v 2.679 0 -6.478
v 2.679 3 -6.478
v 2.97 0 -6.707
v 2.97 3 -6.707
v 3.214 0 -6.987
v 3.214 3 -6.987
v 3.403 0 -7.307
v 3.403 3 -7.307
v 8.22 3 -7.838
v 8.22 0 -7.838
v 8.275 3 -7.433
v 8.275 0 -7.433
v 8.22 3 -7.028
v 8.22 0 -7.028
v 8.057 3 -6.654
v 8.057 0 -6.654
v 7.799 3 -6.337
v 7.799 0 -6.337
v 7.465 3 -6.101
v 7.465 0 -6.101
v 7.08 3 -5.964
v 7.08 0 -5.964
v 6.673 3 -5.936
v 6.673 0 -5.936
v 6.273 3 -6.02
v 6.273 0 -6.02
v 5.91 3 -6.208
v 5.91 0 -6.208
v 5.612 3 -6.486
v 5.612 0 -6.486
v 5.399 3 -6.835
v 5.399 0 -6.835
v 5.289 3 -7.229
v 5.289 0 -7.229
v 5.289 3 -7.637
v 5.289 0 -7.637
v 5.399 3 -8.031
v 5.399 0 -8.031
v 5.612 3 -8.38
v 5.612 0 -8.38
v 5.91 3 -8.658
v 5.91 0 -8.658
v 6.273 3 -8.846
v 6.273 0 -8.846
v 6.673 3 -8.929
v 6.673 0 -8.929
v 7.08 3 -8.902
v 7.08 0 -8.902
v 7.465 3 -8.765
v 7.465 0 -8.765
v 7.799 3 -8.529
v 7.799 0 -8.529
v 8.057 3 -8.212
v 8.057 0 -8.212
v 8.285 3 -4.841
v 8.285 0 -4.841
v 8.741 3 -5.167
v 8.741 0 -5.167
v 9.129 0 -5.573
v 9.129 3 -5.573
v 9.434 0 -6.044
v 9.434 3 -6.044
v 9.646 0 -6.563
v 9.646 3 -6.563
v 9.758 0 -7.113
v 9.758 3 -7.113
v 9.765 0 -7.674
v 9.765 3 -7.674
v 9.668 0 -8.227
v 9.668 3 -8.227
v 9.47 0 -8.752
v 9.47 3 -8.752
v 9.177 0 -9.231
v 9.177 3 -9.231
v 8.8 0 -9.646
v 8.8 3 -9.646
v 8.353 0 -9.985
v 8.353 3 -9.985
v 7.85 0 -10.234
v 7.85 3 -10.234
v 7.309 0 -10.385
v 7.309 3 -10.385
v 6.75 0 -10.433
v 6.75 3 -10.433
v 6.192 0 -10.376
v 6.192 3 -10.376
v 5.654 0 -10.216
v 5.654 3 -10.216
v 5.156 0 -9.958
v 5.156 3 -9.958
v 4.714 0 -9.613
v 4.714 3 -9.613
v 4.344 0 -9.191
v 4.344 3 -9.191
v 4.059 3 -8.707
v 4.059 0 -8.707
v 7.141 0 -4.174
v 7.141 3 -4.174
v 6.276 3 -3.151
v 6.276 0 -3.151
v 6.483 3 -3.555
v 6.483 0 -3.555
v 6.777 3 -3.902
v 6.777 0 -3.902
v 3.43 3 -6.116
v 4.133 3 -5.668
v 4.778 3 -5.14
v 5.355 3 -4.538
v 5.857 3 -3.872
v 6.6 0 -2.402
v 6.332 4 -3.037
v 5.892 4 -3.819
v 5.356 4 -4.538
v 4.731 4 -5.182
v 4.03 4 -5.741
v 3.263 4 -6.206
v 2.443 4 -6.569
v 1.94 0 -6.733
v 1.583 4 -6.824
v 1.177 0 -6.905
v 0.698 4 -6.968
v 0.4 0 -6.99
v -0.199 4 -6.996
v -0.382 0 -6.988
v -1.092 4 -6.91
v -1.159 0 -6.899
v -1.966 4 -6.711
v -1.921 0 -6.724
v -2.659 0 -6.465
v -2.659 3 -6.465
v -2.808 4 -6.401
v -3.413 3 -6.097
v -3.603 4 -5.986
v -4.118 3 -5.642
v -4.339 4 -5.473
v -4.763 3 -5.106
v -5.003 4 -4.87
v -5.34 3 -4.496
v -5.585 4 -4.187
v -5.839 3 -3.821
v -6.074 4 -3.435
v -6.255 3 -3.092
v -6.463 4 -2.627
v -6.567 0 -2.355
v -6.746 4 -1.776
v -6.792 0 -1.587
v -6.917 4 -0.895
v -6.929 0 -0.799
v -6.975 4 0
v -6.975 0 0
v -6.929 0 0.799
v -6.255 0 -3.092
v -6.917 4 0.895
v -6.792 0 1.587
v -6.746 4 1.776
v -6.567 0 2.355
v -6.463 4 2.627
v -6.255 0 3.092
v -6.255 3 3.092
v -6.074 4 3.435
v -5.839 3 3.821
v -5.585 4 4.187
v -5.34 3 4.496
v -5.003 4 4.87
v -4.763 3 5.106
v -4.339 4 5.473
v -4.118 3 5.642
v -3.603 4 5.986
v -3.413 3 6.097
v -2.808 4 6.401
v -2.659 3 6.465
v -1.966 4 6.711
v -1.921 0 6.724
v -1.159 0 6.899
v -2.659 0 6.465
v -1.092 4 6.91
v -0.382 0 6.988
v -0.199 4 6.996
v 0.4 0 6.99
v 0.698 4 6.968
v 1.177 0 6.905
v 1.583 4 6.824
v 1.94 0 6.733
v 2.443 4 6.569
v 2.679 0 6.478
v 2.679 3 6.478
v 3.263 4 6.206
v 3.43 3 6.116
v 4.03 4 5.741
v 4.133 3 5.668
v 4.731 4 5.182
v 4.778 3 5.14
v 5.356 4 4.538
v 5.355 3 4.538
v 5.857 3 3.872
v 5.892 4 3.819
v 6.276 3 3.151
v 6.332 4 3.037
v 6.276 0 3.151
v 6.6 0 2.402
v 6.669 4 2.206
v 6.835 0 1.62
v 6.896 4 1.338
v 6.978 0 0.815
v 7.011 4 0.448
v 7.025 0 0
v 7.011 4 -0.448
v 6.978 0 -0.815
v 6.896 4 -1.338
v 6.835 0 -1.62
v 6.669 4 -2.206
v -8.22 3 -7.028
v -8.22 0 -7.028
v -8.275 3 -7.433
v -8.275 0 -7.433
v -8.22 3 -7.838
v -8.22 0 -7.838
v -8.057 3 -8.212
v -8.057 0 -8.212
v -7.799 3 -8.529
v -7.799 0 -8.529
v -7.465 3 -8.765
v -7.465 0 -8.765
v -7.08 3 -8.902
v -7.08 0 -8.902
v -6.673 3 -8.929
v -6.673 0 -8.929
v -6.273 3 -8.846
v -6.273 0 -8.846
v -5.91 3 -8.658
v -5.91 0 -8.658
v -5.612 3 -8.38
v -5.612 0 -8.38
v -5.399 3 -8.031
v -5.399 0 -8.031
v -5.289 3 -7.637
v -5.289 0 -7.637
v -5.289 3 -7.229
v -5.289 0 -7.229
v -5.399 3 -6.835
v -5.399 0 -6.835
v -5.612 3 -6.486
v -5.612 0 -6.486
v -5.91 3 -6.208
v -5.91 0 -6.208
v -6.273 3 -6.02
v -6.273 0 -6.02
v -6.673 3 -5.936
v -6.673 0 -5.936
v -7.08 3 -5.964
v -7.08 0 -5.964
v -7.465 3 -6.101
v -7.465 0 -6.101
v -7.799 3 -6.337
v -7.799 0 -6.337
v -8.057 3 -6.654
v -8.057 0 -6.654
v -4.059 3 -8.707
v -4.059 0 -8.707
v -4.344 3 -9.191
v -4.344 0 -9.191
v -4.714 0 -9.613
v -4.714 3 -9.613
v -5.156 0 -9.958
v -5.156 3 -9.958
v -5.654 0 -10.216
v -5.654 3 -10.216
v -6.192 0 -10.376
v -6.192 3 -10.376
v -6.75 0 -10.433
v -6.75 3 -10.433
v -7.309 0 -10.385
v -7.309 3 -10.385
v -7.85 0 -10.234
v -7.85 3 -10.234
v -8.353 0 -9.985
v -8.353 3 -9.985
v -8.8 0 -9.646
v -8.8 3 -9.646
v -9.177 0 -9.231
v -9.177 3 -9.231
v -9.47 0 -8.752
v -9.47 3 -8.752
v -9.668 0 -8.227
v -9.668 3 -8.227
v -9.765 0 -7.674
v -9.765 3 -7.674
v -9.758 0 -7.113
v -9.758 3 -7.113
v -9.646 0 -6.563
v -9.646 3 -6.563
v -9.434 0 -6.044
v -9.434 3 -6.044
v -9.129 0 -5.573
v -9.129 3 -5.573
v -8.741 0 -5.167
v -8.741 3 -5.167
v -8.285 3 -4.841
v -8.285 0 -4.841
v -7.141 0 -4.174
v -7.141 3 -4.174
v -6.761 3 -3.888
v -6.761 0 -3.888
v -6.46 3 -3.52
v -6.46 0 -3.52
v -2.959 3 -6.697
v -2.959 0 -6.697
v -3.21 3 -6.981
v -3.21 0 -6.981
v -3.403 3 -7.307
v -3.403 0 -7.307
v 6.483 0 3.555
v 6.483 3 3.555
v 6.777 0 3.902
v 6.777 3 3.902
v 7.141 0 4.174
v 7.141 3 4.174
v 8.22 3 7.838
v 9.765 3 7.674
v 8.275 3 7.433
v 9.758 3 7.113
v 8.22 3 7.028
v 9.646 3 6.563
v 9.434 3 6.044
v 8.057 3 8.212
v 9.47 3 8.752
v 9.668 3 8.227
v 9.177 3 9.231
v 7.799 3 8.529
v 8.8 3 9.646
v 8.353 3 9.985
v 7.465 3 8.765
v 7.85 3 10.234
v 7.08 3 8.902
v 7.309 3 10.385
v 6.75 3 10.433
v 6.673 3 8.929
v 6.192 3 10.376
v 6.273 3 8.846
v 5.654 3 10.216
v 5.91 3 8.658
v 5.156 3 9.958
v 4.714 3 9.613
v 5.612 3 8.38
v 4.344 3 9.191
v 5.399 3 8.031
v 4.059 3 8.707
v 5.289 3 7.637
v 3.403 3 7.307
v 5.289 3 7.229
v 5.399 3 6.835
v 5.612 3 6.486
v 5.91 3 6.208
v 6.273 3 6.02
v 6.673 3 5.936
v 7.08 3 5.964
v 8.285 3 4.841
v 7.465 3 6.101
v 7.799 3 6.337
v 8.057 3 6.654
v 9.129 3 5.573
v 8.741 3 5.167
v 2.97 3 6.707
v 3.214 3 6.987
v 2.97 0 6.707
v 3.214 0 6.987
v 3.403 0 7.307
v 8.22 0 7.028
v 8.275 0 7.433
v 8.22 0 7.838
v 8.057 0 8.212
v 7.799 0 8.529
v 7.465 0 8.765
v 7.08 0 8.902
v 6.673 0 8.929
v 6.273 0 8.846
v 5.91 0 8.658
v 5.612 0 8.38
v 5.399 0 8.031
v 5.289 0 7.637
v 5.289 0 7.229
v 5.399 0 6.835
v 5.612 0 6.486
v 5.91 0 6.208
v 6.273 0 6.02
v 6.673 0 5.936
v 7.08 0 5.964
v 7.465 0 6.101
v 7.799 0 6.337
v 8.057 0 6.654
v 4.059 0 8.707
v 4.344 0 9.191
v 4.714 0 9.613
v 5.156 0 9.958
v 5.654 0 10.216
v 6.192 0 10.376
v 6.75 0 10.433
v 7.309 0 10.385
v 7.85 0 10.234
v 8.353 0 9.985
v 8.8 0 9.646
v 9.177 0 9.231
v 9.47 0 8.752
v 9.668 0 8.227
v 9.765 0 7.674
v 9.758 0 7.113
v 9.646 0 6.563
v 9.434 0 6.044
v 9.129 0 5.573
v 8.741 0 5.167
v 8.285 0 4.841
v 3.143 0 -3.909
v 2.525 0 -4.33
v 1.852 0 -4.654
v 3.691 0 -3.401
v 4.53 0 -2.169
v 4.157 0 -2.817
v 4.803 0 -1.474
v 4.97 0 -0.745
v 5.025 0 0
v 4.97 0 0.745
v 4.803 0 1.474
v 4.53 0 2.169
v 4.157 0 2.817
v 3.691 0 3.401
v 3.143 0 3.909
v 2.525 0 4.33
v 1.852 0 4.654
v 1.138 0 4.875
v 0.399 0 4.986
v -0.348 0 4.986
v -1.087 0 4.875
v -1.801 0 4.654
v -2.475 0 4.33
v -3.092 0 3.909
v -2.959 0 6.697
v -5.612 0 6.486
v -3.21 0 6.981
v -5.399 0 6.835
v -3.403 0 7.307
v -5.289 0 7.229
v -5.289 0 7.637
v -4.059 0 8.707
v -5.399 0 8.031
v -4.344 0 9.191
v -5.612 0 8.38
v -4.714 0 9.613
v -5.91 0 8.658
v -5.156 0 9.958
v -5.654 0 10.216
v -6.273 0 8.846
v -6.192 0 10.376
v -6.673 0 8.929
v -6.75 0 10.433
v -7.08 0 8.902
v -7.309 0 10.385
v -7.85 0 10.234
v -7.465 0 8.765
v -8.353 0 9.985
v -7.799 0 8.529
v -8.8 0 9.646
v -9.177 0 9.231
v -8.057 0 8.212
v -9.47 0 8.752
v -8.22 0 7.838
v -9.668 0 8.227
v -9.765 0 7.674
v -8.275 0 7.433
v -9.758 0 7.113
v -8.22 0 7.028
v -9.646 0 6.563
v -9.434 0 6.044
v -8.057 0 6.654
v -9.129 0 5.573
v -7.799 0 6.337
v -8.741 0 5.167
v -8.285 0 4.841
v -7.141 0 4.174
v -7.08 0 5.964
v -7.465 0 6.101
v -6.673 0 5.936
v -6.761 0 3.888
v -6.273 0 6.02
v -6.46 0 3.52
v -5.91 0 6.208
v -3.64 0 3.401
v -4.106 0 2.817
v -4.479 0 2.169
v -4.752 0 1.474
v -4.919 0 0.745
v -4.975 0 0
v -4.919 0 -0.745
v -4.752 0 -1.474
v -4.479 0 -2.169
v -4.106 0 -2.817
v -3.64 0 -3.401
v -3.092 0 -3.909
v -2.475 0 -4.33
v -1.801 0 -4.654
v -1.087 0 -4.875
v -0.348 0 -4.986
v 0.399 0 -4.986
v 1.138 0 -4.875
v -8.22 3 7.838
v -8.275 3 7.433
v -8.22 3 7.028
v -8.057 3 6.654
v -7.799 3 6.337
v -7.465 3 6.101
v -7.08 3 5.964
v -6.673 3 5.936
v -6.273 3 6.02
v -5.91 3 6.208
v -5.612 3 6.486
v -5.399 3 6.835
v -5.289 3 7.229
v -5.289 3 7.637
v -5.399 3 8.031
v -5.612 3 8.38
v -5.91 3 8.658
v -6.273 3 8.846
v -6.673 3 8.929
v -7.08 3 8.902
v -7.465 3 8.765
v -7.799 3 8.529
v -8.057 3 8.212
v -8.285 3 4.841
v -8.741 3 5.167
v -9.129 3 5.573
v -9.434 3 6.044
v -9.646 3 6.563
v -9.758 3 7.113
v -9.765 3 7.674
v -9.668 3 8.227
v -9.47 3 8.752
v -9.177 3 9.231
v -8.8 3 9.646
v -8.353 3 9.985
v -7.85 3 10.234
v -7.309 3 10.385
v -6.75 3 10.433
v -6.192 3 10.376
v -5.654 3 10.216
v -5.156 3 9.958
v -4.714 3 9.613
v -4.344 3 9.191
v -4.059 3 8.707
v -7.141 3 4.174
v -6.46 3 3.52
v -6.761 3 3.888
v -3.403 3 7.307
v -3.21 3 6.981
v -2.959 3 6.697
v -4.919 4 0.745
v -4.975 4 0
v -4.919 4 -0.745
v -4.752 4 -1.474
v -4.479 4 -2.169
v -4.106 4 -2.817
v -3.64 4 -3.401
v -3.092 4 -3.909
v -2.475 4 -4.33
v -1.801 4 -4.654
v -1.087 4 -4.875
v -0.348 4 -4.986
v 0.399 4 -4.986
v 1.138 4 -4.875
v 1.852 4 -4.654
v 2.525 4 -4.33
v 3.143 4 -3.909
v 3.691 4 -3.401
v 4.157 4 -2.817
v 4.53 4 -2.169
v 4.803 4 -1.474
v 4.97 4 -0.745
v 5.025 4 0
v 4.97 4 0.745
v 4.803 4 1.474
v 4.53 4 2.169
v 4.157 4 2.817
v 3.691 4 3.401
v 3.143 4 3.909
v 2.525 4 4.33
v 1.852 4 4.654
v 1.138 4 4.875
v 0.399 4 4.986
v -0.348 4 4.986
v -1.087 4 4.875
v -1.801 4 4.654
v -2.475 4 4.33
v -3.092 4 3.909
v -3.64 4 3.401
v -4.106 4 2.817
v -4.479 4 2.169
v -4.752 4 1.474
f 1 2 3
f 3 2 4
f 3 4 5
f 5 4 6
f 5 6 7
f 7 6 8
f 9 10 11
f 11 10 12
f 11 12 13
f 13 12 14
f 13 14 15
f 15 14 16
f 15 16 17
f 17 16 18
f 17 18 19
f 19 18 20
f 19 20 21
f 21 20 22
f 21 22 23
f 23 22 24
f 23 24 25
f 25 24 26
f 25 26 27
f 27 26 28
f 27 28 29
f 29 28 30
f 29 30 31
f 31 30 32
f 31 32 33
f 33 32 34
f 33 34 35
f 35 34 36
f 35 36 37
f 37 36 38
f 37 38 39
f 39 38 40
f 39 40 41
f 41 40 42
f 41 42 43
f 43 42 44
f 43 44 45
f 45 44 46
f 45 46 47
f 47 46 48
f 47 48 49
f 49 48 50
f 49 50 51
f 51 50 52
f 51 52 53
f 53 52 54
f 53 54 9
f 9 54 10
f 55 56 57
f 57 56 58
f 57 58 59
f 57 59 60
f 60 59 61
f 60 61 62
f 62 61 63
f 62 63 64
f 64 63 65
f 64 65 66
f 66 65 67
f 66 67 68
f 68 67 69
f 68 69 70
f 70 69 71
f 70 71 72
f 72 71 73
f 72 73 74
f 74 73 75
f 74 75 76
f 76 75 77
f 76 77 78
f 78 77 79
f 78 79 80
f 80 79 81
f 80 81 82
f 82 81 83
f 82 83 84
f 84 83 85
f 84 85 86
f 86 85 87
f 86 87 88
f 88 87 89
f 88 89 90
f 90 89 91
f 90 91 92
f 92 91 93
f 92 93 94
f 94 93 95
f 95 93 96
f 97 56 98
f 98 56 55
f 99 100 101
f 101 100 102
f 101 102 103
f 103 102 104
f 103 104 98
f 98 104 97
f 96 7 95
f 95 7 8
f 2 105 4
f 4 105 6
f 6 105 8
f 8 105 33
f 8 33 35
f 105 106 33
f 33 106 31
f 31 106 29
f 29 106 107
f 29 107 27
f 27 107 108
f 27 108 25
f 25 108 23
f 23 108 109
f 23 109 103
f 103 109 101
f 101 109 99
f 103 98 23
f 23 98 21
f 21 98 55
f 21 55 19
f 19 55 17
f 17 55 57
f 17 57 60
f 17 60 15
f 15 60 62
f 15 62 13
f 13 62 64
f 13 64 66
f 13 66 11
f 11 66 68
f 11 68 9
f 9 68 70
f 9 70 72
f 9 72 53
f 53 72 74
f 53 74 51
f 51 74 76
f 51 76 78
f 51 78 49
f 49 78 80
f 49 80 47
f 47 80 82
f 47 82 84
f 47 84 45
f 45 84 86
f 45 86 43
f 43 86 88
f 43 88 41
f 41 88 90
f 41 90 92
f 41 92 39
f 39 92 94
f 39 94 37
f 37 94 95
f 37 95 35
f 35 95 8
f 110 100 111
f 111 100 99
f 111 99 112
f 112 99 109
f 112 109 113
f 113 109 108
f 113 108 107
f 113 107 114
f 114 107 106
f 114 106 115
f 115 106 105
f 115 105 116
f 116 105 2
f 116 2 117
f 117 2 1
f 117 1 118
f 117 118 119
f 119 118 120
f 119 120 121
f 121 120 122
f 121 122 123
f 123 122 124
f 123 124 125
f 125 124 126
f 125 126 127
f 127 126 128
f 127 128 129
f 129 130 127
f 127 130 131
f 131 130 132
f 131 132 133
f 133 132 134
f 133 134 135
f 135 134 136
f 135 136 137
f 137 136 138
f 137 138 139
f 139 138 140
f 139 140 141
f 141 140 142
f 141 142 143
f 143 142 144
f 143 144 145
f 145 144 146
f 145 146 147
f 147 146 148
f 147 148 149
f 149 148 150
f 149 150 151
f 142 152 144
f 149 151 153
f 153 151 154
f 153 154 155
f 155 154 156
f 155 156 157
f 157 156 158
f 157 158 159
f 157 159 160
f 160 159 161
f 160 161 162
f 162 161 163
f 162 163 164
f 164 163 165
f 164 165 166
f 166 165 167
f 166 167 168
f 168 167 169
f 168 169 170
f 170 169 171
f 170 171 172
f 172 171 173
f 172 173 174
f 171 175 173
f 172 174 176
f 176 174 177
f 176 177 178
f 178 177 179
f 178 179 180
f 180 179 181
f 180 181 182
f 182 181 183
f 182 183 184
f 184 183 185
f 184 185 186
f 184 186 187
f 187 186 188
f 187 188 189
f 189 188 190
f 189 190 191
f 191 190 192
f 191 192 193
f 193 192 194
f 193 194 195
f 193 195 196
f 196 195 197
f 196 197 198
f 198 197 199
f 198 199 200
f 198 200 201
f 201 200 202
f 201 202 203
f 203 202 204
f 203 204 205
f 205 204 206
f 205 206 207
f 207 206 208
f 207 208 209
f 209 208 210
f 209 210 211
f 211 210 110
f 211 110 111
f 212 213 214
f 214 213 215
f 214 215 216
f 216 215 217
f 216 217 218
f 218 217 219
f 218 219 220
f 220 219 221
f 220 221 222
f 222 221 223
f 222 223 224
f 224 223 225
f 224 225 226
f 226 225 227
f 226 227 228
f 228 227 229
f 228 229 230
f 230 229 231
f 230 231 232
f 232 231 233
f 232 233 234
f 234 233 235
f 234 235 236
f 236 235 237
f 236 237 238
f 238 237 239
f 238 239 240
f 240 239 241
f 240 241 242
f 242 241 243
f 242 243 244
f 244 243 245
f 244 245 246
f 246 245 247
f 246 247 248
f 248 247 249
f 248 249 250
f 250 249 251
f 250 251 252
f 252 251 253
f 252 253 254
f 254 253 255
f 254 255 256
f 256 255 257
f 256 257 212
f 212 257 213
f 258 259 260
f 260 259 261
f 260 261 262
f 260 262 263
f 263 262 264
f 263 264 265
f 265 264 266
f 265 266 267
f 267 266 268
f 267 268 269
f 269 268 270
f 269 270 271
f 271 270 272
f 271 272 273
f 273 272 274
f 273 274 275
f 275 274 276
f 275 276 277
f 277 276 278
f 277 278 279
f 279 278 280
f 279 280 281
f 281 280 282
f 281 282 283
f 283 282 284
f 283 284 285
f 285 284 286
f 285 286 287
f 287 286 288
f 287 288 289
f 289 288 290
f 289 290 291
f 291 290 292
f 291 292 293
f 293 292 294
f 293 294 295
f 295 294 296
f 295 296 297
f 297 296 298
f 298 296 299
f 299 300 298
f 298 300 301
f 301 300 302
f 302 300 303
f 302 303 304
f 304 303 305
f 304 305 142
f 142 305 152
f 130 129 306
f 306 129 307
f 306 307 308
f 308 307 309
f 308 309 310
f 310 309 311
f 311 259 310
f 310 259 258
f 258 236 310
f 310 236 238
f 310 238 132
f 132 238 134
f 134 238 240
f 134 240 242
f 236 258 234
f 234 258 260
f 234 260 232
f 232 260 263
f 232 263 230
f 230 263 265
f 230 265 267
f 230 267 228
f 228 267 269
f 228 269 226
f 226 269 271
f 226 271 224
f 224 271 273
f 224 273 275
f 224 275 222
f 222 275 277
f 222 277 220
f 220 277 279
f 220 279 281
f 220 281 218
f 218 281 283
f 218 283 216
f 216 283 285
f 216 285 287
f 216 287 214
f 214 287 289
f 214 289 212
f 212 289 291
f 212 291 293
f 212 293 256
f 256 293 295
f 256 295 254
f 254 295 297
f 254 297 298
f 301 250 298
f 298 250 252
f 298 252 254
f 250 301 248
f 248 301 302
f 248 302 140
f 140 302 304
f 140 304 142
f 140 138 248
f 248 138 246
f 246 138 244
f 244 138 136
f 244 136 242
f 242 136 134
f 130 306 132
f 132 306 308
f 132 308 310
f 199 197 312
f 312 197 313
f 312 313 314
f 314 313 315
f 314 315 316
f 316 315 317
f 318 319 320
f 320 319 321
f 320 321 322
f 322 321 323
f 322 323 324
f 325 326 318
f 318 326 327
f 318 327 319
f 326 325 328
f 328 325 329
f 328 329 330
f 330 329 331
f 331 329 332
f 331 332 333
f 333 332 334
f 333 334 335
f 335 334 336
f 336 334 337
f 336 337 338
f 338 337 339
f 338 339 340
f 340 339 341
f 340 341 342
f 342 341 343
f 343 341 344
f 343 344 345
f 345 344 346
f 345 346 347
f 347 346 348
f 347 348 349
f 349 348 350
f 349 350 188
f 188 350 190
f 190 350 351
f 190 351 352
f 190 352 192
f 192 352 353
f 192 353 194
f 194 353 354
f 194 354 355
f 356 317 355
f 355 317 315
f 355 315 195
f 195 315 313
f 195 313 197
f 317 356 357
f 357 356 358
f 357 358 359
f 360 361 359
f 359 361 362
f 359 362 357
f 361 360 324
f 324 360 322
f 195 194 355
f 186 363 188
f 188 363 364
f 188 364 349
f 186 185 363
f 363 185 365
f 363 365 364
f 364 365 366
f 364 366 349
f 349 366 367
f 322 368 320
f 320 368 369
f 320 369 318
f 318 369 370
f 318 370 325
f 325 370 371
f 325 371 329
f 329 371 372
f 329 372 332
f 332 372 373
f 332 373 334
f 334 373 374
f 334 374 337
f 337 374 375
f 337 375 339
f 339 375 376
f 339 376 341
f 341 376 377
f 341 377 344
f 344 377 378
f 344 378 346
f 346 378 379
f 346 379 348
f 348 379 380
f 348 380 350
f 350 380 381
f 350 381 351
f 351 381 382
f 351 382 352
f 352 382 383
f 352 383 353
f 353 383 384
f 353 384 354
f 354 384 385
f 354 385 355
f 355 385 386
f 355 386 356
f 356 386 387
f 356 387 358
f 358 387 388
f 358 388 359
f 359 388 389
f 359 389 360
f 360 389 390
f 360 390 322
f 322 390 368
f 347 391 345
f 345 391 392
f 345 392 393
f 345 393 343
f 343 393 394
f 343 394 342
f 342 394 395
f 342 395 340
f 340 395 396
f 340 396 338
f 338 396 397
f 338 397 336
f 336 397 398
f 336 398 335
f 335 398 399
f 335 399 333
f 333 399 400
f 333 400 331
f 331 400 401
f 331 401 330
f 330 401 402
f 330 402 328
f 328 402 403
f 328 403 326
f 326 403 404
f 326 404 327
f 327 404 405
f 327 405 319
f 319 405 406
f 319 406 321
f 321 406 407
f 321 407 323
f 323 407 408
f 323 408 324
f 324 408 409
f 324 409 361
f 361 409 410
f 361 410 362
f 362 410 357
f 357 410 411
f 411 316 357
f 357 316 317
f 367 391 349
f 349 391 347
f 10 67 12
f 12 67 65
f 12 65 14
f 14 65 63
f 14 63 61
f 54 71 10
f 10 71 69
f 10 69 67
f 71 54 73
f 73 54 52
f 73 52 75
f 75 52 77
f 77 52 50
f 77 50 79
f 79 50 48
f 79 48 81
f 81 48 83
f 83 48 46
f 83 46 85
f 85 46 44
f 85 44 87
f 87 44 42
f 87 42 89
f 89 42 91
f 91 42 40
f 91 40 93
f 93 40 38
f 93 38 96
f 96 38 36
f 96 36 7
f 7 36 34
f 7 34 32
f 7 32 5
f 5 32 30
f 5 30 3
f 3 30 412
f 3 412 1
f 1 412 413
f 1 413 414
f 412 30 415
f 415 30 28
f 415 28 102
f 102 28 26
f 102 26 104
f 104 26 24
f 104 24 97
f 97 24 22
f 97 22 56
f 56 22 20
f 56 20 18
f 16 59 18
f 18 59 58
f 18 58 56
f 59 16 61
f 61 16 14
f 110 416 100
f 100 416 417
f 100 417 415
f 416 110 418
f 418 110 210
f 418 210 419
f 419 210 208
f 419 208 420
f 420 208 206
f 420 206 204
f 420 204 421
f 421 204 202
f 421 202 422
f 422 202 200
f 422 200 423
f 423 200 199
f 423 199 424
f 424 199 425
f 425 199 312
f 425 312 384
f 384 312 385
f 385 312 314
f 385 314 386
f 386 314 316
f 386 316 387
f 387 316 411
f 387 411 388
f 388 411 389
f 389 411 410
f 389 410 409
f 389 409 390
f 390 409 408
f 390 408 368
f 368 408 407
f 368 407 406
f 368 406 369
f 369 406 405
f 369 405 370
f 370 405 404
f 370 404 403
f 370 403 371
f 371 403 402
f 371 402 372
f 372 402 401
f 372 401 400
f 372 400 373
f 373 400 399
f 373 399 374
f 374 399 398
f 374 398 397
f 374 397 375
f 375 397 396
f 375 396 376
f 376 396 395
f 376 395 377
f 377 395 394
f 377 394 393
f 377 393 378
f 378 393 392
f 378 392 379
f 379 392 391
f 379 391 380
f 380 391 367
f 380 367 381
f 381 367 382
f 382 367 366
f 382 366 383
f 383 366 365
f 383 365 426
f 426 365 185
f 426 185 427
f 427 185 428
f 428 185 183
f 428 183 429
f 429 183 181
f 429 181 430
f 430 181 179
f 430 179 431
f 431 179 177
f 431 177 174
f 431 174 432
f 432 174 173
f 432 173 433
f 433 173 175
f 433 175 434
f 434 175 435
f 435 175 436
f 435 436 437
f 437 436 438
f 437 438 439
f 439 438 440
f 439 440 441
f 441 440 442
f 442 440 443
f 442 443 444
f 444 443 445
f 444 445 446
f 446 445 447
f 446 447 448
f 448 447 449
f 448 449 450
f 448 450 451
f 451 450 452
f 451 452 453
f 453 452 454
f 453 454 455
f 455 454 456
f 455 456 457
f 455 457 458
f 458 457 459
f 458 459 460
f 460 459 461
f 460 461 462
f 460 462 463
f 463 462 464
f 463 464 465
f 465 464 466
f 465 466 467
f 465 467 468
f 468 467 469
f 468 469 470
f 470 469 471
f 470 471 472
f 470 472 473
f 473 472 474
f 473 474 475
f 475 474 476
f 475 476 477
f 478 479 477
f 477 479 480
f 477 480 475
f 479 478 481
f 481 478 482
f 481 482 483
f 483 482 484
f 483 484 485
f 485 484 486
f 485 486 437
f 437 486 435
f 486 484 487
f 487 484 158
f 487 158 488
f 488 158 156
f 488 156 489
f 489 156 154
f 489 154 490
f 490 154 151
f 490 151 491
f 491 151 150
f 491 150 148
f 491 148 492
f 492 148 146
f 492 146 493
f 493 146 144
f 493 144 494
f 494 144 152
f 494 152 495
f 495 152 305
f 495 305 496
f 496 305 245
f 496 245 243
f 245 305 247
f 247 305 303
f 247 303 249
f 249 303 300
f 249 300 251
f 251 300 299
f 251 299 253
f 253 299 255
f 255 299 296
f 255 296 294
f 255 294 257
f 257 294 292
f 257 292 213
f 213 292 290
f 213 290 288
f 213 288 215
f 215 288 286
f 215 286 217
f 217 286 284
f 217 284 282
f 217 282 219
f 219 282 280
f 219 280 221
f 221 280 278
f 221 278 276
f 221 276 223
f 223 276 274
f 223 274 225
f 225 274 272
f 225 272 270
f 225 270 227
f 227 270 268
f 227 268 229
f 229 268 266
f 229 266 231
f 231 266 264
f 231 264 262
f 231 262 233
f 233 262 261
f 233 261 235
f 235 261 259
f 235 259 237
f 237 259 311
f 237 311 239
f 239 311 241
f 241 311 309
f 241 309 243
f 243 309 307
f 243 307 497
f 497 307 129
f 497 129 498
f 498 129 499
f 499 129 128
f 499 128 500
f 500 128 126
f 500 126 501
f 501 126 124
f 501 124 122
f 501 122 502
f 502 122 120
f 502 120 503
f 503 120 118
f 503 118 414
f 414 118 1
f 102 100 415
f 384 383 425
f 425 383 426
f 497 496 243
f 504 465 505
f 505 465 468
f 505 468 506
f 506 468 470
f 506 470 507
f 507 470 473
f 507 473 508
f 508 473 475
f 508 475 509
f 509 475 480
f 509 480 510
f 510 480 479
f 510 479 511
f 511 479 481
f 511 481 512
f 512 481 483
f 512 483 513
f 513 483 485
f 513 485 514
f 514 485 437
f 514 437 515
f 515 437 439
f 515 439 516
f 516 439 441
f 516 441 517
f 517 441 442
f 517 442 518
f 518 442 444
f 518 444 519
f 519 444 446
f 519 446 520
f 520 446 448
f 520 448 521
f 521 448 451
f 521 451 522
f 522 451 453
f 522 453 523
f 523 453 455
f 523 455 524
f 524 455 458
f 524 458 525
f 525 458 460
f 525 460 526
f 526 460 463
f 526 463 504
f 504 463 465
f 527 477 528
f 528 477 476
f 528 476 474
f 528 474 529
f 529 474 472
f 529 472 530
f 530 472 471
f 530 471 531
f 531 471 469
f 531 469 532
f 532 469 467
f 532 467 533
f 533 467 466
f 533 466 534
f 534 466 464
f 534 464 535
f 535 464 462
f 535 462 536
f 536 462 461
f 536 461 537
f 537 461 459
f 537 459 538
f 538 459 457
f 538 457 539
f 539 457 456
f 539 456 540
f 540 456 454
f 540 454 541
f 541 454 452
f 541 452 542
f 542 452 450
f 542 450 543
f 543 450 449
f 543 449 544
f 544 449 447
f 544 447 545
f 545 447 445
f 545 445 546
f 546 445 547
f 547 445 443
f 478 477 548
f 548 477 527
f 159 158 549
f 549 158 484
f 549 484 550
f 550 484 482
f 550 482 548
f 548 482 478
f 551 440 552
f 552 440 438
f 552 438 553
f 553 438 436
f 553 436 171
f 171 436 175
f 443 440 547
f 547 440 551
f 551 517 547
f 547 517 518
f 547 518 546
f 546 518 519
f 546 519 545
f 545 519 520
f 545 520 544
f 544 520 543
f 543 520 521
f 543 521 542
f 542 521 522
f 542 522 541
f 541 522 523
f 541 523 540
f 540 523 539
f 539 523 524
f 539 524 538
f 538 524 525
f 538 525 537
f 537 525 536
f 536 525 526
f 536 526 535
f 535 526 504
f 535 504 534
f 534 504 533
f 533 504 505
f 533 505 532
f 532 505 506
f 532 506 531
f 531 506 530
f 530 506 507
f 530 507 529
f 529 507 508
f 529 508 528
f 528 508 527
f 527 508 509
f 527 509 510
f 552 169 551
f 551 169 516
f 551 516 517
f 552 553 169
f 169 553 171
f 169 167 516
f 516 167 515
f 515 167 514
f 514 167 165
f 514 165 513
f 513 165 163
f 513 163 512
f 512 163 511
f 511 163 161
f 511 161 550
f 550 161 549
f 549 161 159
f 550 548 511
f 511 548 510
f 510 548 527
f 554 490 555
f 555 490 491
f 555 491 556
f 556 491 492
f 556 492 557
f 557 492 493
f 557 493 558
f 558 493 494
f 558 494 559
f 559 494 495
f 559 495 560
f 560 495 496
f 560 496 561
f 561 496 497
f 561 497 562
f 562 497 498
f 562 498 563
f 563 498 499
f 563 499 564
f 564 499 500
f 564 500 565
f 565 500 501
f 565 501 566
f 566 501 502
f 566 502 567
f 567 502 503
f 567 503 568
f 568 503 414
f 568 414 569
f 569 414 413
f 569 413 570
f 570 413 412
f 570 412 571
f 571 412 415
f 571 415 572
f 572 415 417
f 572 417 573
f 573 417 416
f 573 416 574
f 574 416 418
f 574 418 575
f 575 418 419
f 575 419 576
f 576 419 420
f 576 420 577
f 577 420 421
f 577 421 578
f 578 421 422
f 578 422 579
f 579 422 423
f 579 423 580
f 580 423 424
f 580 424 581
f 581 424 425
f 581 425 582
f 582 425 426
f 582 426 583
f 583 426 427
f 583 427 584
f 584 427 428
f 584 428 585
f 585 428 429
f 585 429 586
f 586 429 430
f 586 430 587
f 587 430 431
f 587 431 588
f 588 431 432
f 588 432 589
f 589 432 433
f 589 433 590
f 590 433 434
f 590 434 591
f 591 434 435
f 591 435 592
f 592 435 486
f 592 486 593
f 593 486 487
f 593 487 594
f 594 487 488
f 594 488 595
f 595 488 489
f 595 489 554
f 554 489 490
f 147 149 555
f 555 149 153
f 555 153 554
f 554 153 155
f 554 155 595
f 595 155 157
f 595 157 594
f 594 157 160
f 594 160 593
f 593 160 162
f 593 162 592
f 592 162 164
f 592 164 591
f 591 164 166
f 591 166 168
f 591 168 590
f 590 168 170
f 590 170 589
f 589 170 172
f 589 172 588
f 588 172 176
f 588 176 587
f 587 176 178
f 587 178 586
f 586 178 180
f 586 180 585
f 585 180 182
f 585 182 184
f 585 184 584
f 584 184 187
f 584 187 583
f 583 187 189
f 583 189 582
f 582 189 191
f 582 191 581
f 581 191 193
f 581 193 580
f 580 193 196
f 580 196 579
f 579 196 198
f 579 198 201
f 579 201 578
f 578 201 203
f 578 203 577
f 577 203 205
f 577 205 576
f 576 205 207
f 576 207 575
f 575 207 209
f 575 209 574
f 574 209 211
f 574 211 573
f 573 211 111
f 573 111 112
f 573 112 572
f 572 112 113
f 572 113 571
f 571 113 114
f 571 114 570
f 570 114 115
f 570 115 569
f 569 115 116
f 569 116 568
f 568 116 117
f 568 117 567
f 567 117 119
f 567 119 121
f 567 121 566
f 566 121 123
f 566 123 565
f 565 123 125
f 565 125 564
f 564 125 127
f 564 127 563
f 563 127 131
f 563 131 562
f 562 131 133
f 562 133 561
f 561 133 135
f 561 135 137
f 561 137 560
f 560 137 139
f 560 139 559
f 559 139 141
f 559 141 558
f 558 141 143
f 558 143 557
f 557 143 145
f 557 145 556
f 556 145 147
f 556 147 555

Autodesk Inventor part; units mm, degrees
ref_plane "YZ Plane" through (0, 0, 0) normal (1, 0, 0) x (0, 1, 0)
ref_plane "XZ Plane" through (0, 0, 0) normal (0, 1, 0) x (-1, 0, 0)
ref_plane "XY Plane" through (0, 0, 0) normal (0, 0, 1) x (1, 0, 0)
sketch "Эскиз1" plane through (0, 0, 0) normal (0, 1, 0) x (-1, 0, 0)
  circle A0 centre (-0.0254, 0) radius 7
  circle A1 centre (-7.0254, 6.889) radius 1.5
  circle A2 centre (6.7752, 7.433) radius 1.5
  circle A3 centre (6.9746, -7.0215) radius 1.5
  circle A4 centre (-7.0254, -7.0215) radius 1.5
  circle A5 centre (-0.0254, 0) radius 5
  line L0 (0, 0) -> (0, 8.1981) construction
  line L1 (-0.0254, 0) -> (8.1589, 0) construction
  circle A6 centre (6.7752, 7.433) radius 3
  line L2 (4.0592, 8.7071) -> (3.4025, 7.3072)
  line L3 (8.2851, 4.8407) -> (7.1407, 4.1741)
  line L4 (0.7424, 6.346) -> (0.4551, 6.4808)
  arc A7 (0.7424, 6.346) -> (3.4025, 7.3072) centre (1.5918, 8.1566) ccw
  line L5 (5.7914, 2.5169) -> (6.4192, 1.4392)
  arc A8 (7.1407, 4.1741) -> (6.4192, 1.4392) centre (8.1474, 2.4459) ccw
  point P0 (-10.336, -7.0215)
  point P1 (-9.1433, 6.8618)
  point P2 (6.9746, 10.1261)
  point P3 (2.6587, 6.4649)
  point P4 (6.2546, 3.0921)
  dimension "d0" = 14
  dimension "d1" = 3
  dimension "d2" = 3
  dimension "d3" = 3
  dimension "d4" = 3
  dimension "d5" = 10
  dimension "d6" = 6
  dimension "d7" = 2
  dimension "d8" = 2
extrude "Выдавливание1" add sketch "Эскиз1" along normal blind 4 contours A0
extrude "Выдавливание2" add sketch "Эскиз1" along normal blind 3 contours A0 A7 L2 A6 L3 A8 | A6
mirror "Зеркальное отражение1" about plane through (0, 0, 0) normal (1, 0, 0) of "Выдавливание2"
mirror "Зеркальное отражение2" about plane through (0, 0, 0) normal (0, 0, 1) of "Выдавливание2", "Зеркальное отражение1"
properties part number "крепление подшипника_1"
